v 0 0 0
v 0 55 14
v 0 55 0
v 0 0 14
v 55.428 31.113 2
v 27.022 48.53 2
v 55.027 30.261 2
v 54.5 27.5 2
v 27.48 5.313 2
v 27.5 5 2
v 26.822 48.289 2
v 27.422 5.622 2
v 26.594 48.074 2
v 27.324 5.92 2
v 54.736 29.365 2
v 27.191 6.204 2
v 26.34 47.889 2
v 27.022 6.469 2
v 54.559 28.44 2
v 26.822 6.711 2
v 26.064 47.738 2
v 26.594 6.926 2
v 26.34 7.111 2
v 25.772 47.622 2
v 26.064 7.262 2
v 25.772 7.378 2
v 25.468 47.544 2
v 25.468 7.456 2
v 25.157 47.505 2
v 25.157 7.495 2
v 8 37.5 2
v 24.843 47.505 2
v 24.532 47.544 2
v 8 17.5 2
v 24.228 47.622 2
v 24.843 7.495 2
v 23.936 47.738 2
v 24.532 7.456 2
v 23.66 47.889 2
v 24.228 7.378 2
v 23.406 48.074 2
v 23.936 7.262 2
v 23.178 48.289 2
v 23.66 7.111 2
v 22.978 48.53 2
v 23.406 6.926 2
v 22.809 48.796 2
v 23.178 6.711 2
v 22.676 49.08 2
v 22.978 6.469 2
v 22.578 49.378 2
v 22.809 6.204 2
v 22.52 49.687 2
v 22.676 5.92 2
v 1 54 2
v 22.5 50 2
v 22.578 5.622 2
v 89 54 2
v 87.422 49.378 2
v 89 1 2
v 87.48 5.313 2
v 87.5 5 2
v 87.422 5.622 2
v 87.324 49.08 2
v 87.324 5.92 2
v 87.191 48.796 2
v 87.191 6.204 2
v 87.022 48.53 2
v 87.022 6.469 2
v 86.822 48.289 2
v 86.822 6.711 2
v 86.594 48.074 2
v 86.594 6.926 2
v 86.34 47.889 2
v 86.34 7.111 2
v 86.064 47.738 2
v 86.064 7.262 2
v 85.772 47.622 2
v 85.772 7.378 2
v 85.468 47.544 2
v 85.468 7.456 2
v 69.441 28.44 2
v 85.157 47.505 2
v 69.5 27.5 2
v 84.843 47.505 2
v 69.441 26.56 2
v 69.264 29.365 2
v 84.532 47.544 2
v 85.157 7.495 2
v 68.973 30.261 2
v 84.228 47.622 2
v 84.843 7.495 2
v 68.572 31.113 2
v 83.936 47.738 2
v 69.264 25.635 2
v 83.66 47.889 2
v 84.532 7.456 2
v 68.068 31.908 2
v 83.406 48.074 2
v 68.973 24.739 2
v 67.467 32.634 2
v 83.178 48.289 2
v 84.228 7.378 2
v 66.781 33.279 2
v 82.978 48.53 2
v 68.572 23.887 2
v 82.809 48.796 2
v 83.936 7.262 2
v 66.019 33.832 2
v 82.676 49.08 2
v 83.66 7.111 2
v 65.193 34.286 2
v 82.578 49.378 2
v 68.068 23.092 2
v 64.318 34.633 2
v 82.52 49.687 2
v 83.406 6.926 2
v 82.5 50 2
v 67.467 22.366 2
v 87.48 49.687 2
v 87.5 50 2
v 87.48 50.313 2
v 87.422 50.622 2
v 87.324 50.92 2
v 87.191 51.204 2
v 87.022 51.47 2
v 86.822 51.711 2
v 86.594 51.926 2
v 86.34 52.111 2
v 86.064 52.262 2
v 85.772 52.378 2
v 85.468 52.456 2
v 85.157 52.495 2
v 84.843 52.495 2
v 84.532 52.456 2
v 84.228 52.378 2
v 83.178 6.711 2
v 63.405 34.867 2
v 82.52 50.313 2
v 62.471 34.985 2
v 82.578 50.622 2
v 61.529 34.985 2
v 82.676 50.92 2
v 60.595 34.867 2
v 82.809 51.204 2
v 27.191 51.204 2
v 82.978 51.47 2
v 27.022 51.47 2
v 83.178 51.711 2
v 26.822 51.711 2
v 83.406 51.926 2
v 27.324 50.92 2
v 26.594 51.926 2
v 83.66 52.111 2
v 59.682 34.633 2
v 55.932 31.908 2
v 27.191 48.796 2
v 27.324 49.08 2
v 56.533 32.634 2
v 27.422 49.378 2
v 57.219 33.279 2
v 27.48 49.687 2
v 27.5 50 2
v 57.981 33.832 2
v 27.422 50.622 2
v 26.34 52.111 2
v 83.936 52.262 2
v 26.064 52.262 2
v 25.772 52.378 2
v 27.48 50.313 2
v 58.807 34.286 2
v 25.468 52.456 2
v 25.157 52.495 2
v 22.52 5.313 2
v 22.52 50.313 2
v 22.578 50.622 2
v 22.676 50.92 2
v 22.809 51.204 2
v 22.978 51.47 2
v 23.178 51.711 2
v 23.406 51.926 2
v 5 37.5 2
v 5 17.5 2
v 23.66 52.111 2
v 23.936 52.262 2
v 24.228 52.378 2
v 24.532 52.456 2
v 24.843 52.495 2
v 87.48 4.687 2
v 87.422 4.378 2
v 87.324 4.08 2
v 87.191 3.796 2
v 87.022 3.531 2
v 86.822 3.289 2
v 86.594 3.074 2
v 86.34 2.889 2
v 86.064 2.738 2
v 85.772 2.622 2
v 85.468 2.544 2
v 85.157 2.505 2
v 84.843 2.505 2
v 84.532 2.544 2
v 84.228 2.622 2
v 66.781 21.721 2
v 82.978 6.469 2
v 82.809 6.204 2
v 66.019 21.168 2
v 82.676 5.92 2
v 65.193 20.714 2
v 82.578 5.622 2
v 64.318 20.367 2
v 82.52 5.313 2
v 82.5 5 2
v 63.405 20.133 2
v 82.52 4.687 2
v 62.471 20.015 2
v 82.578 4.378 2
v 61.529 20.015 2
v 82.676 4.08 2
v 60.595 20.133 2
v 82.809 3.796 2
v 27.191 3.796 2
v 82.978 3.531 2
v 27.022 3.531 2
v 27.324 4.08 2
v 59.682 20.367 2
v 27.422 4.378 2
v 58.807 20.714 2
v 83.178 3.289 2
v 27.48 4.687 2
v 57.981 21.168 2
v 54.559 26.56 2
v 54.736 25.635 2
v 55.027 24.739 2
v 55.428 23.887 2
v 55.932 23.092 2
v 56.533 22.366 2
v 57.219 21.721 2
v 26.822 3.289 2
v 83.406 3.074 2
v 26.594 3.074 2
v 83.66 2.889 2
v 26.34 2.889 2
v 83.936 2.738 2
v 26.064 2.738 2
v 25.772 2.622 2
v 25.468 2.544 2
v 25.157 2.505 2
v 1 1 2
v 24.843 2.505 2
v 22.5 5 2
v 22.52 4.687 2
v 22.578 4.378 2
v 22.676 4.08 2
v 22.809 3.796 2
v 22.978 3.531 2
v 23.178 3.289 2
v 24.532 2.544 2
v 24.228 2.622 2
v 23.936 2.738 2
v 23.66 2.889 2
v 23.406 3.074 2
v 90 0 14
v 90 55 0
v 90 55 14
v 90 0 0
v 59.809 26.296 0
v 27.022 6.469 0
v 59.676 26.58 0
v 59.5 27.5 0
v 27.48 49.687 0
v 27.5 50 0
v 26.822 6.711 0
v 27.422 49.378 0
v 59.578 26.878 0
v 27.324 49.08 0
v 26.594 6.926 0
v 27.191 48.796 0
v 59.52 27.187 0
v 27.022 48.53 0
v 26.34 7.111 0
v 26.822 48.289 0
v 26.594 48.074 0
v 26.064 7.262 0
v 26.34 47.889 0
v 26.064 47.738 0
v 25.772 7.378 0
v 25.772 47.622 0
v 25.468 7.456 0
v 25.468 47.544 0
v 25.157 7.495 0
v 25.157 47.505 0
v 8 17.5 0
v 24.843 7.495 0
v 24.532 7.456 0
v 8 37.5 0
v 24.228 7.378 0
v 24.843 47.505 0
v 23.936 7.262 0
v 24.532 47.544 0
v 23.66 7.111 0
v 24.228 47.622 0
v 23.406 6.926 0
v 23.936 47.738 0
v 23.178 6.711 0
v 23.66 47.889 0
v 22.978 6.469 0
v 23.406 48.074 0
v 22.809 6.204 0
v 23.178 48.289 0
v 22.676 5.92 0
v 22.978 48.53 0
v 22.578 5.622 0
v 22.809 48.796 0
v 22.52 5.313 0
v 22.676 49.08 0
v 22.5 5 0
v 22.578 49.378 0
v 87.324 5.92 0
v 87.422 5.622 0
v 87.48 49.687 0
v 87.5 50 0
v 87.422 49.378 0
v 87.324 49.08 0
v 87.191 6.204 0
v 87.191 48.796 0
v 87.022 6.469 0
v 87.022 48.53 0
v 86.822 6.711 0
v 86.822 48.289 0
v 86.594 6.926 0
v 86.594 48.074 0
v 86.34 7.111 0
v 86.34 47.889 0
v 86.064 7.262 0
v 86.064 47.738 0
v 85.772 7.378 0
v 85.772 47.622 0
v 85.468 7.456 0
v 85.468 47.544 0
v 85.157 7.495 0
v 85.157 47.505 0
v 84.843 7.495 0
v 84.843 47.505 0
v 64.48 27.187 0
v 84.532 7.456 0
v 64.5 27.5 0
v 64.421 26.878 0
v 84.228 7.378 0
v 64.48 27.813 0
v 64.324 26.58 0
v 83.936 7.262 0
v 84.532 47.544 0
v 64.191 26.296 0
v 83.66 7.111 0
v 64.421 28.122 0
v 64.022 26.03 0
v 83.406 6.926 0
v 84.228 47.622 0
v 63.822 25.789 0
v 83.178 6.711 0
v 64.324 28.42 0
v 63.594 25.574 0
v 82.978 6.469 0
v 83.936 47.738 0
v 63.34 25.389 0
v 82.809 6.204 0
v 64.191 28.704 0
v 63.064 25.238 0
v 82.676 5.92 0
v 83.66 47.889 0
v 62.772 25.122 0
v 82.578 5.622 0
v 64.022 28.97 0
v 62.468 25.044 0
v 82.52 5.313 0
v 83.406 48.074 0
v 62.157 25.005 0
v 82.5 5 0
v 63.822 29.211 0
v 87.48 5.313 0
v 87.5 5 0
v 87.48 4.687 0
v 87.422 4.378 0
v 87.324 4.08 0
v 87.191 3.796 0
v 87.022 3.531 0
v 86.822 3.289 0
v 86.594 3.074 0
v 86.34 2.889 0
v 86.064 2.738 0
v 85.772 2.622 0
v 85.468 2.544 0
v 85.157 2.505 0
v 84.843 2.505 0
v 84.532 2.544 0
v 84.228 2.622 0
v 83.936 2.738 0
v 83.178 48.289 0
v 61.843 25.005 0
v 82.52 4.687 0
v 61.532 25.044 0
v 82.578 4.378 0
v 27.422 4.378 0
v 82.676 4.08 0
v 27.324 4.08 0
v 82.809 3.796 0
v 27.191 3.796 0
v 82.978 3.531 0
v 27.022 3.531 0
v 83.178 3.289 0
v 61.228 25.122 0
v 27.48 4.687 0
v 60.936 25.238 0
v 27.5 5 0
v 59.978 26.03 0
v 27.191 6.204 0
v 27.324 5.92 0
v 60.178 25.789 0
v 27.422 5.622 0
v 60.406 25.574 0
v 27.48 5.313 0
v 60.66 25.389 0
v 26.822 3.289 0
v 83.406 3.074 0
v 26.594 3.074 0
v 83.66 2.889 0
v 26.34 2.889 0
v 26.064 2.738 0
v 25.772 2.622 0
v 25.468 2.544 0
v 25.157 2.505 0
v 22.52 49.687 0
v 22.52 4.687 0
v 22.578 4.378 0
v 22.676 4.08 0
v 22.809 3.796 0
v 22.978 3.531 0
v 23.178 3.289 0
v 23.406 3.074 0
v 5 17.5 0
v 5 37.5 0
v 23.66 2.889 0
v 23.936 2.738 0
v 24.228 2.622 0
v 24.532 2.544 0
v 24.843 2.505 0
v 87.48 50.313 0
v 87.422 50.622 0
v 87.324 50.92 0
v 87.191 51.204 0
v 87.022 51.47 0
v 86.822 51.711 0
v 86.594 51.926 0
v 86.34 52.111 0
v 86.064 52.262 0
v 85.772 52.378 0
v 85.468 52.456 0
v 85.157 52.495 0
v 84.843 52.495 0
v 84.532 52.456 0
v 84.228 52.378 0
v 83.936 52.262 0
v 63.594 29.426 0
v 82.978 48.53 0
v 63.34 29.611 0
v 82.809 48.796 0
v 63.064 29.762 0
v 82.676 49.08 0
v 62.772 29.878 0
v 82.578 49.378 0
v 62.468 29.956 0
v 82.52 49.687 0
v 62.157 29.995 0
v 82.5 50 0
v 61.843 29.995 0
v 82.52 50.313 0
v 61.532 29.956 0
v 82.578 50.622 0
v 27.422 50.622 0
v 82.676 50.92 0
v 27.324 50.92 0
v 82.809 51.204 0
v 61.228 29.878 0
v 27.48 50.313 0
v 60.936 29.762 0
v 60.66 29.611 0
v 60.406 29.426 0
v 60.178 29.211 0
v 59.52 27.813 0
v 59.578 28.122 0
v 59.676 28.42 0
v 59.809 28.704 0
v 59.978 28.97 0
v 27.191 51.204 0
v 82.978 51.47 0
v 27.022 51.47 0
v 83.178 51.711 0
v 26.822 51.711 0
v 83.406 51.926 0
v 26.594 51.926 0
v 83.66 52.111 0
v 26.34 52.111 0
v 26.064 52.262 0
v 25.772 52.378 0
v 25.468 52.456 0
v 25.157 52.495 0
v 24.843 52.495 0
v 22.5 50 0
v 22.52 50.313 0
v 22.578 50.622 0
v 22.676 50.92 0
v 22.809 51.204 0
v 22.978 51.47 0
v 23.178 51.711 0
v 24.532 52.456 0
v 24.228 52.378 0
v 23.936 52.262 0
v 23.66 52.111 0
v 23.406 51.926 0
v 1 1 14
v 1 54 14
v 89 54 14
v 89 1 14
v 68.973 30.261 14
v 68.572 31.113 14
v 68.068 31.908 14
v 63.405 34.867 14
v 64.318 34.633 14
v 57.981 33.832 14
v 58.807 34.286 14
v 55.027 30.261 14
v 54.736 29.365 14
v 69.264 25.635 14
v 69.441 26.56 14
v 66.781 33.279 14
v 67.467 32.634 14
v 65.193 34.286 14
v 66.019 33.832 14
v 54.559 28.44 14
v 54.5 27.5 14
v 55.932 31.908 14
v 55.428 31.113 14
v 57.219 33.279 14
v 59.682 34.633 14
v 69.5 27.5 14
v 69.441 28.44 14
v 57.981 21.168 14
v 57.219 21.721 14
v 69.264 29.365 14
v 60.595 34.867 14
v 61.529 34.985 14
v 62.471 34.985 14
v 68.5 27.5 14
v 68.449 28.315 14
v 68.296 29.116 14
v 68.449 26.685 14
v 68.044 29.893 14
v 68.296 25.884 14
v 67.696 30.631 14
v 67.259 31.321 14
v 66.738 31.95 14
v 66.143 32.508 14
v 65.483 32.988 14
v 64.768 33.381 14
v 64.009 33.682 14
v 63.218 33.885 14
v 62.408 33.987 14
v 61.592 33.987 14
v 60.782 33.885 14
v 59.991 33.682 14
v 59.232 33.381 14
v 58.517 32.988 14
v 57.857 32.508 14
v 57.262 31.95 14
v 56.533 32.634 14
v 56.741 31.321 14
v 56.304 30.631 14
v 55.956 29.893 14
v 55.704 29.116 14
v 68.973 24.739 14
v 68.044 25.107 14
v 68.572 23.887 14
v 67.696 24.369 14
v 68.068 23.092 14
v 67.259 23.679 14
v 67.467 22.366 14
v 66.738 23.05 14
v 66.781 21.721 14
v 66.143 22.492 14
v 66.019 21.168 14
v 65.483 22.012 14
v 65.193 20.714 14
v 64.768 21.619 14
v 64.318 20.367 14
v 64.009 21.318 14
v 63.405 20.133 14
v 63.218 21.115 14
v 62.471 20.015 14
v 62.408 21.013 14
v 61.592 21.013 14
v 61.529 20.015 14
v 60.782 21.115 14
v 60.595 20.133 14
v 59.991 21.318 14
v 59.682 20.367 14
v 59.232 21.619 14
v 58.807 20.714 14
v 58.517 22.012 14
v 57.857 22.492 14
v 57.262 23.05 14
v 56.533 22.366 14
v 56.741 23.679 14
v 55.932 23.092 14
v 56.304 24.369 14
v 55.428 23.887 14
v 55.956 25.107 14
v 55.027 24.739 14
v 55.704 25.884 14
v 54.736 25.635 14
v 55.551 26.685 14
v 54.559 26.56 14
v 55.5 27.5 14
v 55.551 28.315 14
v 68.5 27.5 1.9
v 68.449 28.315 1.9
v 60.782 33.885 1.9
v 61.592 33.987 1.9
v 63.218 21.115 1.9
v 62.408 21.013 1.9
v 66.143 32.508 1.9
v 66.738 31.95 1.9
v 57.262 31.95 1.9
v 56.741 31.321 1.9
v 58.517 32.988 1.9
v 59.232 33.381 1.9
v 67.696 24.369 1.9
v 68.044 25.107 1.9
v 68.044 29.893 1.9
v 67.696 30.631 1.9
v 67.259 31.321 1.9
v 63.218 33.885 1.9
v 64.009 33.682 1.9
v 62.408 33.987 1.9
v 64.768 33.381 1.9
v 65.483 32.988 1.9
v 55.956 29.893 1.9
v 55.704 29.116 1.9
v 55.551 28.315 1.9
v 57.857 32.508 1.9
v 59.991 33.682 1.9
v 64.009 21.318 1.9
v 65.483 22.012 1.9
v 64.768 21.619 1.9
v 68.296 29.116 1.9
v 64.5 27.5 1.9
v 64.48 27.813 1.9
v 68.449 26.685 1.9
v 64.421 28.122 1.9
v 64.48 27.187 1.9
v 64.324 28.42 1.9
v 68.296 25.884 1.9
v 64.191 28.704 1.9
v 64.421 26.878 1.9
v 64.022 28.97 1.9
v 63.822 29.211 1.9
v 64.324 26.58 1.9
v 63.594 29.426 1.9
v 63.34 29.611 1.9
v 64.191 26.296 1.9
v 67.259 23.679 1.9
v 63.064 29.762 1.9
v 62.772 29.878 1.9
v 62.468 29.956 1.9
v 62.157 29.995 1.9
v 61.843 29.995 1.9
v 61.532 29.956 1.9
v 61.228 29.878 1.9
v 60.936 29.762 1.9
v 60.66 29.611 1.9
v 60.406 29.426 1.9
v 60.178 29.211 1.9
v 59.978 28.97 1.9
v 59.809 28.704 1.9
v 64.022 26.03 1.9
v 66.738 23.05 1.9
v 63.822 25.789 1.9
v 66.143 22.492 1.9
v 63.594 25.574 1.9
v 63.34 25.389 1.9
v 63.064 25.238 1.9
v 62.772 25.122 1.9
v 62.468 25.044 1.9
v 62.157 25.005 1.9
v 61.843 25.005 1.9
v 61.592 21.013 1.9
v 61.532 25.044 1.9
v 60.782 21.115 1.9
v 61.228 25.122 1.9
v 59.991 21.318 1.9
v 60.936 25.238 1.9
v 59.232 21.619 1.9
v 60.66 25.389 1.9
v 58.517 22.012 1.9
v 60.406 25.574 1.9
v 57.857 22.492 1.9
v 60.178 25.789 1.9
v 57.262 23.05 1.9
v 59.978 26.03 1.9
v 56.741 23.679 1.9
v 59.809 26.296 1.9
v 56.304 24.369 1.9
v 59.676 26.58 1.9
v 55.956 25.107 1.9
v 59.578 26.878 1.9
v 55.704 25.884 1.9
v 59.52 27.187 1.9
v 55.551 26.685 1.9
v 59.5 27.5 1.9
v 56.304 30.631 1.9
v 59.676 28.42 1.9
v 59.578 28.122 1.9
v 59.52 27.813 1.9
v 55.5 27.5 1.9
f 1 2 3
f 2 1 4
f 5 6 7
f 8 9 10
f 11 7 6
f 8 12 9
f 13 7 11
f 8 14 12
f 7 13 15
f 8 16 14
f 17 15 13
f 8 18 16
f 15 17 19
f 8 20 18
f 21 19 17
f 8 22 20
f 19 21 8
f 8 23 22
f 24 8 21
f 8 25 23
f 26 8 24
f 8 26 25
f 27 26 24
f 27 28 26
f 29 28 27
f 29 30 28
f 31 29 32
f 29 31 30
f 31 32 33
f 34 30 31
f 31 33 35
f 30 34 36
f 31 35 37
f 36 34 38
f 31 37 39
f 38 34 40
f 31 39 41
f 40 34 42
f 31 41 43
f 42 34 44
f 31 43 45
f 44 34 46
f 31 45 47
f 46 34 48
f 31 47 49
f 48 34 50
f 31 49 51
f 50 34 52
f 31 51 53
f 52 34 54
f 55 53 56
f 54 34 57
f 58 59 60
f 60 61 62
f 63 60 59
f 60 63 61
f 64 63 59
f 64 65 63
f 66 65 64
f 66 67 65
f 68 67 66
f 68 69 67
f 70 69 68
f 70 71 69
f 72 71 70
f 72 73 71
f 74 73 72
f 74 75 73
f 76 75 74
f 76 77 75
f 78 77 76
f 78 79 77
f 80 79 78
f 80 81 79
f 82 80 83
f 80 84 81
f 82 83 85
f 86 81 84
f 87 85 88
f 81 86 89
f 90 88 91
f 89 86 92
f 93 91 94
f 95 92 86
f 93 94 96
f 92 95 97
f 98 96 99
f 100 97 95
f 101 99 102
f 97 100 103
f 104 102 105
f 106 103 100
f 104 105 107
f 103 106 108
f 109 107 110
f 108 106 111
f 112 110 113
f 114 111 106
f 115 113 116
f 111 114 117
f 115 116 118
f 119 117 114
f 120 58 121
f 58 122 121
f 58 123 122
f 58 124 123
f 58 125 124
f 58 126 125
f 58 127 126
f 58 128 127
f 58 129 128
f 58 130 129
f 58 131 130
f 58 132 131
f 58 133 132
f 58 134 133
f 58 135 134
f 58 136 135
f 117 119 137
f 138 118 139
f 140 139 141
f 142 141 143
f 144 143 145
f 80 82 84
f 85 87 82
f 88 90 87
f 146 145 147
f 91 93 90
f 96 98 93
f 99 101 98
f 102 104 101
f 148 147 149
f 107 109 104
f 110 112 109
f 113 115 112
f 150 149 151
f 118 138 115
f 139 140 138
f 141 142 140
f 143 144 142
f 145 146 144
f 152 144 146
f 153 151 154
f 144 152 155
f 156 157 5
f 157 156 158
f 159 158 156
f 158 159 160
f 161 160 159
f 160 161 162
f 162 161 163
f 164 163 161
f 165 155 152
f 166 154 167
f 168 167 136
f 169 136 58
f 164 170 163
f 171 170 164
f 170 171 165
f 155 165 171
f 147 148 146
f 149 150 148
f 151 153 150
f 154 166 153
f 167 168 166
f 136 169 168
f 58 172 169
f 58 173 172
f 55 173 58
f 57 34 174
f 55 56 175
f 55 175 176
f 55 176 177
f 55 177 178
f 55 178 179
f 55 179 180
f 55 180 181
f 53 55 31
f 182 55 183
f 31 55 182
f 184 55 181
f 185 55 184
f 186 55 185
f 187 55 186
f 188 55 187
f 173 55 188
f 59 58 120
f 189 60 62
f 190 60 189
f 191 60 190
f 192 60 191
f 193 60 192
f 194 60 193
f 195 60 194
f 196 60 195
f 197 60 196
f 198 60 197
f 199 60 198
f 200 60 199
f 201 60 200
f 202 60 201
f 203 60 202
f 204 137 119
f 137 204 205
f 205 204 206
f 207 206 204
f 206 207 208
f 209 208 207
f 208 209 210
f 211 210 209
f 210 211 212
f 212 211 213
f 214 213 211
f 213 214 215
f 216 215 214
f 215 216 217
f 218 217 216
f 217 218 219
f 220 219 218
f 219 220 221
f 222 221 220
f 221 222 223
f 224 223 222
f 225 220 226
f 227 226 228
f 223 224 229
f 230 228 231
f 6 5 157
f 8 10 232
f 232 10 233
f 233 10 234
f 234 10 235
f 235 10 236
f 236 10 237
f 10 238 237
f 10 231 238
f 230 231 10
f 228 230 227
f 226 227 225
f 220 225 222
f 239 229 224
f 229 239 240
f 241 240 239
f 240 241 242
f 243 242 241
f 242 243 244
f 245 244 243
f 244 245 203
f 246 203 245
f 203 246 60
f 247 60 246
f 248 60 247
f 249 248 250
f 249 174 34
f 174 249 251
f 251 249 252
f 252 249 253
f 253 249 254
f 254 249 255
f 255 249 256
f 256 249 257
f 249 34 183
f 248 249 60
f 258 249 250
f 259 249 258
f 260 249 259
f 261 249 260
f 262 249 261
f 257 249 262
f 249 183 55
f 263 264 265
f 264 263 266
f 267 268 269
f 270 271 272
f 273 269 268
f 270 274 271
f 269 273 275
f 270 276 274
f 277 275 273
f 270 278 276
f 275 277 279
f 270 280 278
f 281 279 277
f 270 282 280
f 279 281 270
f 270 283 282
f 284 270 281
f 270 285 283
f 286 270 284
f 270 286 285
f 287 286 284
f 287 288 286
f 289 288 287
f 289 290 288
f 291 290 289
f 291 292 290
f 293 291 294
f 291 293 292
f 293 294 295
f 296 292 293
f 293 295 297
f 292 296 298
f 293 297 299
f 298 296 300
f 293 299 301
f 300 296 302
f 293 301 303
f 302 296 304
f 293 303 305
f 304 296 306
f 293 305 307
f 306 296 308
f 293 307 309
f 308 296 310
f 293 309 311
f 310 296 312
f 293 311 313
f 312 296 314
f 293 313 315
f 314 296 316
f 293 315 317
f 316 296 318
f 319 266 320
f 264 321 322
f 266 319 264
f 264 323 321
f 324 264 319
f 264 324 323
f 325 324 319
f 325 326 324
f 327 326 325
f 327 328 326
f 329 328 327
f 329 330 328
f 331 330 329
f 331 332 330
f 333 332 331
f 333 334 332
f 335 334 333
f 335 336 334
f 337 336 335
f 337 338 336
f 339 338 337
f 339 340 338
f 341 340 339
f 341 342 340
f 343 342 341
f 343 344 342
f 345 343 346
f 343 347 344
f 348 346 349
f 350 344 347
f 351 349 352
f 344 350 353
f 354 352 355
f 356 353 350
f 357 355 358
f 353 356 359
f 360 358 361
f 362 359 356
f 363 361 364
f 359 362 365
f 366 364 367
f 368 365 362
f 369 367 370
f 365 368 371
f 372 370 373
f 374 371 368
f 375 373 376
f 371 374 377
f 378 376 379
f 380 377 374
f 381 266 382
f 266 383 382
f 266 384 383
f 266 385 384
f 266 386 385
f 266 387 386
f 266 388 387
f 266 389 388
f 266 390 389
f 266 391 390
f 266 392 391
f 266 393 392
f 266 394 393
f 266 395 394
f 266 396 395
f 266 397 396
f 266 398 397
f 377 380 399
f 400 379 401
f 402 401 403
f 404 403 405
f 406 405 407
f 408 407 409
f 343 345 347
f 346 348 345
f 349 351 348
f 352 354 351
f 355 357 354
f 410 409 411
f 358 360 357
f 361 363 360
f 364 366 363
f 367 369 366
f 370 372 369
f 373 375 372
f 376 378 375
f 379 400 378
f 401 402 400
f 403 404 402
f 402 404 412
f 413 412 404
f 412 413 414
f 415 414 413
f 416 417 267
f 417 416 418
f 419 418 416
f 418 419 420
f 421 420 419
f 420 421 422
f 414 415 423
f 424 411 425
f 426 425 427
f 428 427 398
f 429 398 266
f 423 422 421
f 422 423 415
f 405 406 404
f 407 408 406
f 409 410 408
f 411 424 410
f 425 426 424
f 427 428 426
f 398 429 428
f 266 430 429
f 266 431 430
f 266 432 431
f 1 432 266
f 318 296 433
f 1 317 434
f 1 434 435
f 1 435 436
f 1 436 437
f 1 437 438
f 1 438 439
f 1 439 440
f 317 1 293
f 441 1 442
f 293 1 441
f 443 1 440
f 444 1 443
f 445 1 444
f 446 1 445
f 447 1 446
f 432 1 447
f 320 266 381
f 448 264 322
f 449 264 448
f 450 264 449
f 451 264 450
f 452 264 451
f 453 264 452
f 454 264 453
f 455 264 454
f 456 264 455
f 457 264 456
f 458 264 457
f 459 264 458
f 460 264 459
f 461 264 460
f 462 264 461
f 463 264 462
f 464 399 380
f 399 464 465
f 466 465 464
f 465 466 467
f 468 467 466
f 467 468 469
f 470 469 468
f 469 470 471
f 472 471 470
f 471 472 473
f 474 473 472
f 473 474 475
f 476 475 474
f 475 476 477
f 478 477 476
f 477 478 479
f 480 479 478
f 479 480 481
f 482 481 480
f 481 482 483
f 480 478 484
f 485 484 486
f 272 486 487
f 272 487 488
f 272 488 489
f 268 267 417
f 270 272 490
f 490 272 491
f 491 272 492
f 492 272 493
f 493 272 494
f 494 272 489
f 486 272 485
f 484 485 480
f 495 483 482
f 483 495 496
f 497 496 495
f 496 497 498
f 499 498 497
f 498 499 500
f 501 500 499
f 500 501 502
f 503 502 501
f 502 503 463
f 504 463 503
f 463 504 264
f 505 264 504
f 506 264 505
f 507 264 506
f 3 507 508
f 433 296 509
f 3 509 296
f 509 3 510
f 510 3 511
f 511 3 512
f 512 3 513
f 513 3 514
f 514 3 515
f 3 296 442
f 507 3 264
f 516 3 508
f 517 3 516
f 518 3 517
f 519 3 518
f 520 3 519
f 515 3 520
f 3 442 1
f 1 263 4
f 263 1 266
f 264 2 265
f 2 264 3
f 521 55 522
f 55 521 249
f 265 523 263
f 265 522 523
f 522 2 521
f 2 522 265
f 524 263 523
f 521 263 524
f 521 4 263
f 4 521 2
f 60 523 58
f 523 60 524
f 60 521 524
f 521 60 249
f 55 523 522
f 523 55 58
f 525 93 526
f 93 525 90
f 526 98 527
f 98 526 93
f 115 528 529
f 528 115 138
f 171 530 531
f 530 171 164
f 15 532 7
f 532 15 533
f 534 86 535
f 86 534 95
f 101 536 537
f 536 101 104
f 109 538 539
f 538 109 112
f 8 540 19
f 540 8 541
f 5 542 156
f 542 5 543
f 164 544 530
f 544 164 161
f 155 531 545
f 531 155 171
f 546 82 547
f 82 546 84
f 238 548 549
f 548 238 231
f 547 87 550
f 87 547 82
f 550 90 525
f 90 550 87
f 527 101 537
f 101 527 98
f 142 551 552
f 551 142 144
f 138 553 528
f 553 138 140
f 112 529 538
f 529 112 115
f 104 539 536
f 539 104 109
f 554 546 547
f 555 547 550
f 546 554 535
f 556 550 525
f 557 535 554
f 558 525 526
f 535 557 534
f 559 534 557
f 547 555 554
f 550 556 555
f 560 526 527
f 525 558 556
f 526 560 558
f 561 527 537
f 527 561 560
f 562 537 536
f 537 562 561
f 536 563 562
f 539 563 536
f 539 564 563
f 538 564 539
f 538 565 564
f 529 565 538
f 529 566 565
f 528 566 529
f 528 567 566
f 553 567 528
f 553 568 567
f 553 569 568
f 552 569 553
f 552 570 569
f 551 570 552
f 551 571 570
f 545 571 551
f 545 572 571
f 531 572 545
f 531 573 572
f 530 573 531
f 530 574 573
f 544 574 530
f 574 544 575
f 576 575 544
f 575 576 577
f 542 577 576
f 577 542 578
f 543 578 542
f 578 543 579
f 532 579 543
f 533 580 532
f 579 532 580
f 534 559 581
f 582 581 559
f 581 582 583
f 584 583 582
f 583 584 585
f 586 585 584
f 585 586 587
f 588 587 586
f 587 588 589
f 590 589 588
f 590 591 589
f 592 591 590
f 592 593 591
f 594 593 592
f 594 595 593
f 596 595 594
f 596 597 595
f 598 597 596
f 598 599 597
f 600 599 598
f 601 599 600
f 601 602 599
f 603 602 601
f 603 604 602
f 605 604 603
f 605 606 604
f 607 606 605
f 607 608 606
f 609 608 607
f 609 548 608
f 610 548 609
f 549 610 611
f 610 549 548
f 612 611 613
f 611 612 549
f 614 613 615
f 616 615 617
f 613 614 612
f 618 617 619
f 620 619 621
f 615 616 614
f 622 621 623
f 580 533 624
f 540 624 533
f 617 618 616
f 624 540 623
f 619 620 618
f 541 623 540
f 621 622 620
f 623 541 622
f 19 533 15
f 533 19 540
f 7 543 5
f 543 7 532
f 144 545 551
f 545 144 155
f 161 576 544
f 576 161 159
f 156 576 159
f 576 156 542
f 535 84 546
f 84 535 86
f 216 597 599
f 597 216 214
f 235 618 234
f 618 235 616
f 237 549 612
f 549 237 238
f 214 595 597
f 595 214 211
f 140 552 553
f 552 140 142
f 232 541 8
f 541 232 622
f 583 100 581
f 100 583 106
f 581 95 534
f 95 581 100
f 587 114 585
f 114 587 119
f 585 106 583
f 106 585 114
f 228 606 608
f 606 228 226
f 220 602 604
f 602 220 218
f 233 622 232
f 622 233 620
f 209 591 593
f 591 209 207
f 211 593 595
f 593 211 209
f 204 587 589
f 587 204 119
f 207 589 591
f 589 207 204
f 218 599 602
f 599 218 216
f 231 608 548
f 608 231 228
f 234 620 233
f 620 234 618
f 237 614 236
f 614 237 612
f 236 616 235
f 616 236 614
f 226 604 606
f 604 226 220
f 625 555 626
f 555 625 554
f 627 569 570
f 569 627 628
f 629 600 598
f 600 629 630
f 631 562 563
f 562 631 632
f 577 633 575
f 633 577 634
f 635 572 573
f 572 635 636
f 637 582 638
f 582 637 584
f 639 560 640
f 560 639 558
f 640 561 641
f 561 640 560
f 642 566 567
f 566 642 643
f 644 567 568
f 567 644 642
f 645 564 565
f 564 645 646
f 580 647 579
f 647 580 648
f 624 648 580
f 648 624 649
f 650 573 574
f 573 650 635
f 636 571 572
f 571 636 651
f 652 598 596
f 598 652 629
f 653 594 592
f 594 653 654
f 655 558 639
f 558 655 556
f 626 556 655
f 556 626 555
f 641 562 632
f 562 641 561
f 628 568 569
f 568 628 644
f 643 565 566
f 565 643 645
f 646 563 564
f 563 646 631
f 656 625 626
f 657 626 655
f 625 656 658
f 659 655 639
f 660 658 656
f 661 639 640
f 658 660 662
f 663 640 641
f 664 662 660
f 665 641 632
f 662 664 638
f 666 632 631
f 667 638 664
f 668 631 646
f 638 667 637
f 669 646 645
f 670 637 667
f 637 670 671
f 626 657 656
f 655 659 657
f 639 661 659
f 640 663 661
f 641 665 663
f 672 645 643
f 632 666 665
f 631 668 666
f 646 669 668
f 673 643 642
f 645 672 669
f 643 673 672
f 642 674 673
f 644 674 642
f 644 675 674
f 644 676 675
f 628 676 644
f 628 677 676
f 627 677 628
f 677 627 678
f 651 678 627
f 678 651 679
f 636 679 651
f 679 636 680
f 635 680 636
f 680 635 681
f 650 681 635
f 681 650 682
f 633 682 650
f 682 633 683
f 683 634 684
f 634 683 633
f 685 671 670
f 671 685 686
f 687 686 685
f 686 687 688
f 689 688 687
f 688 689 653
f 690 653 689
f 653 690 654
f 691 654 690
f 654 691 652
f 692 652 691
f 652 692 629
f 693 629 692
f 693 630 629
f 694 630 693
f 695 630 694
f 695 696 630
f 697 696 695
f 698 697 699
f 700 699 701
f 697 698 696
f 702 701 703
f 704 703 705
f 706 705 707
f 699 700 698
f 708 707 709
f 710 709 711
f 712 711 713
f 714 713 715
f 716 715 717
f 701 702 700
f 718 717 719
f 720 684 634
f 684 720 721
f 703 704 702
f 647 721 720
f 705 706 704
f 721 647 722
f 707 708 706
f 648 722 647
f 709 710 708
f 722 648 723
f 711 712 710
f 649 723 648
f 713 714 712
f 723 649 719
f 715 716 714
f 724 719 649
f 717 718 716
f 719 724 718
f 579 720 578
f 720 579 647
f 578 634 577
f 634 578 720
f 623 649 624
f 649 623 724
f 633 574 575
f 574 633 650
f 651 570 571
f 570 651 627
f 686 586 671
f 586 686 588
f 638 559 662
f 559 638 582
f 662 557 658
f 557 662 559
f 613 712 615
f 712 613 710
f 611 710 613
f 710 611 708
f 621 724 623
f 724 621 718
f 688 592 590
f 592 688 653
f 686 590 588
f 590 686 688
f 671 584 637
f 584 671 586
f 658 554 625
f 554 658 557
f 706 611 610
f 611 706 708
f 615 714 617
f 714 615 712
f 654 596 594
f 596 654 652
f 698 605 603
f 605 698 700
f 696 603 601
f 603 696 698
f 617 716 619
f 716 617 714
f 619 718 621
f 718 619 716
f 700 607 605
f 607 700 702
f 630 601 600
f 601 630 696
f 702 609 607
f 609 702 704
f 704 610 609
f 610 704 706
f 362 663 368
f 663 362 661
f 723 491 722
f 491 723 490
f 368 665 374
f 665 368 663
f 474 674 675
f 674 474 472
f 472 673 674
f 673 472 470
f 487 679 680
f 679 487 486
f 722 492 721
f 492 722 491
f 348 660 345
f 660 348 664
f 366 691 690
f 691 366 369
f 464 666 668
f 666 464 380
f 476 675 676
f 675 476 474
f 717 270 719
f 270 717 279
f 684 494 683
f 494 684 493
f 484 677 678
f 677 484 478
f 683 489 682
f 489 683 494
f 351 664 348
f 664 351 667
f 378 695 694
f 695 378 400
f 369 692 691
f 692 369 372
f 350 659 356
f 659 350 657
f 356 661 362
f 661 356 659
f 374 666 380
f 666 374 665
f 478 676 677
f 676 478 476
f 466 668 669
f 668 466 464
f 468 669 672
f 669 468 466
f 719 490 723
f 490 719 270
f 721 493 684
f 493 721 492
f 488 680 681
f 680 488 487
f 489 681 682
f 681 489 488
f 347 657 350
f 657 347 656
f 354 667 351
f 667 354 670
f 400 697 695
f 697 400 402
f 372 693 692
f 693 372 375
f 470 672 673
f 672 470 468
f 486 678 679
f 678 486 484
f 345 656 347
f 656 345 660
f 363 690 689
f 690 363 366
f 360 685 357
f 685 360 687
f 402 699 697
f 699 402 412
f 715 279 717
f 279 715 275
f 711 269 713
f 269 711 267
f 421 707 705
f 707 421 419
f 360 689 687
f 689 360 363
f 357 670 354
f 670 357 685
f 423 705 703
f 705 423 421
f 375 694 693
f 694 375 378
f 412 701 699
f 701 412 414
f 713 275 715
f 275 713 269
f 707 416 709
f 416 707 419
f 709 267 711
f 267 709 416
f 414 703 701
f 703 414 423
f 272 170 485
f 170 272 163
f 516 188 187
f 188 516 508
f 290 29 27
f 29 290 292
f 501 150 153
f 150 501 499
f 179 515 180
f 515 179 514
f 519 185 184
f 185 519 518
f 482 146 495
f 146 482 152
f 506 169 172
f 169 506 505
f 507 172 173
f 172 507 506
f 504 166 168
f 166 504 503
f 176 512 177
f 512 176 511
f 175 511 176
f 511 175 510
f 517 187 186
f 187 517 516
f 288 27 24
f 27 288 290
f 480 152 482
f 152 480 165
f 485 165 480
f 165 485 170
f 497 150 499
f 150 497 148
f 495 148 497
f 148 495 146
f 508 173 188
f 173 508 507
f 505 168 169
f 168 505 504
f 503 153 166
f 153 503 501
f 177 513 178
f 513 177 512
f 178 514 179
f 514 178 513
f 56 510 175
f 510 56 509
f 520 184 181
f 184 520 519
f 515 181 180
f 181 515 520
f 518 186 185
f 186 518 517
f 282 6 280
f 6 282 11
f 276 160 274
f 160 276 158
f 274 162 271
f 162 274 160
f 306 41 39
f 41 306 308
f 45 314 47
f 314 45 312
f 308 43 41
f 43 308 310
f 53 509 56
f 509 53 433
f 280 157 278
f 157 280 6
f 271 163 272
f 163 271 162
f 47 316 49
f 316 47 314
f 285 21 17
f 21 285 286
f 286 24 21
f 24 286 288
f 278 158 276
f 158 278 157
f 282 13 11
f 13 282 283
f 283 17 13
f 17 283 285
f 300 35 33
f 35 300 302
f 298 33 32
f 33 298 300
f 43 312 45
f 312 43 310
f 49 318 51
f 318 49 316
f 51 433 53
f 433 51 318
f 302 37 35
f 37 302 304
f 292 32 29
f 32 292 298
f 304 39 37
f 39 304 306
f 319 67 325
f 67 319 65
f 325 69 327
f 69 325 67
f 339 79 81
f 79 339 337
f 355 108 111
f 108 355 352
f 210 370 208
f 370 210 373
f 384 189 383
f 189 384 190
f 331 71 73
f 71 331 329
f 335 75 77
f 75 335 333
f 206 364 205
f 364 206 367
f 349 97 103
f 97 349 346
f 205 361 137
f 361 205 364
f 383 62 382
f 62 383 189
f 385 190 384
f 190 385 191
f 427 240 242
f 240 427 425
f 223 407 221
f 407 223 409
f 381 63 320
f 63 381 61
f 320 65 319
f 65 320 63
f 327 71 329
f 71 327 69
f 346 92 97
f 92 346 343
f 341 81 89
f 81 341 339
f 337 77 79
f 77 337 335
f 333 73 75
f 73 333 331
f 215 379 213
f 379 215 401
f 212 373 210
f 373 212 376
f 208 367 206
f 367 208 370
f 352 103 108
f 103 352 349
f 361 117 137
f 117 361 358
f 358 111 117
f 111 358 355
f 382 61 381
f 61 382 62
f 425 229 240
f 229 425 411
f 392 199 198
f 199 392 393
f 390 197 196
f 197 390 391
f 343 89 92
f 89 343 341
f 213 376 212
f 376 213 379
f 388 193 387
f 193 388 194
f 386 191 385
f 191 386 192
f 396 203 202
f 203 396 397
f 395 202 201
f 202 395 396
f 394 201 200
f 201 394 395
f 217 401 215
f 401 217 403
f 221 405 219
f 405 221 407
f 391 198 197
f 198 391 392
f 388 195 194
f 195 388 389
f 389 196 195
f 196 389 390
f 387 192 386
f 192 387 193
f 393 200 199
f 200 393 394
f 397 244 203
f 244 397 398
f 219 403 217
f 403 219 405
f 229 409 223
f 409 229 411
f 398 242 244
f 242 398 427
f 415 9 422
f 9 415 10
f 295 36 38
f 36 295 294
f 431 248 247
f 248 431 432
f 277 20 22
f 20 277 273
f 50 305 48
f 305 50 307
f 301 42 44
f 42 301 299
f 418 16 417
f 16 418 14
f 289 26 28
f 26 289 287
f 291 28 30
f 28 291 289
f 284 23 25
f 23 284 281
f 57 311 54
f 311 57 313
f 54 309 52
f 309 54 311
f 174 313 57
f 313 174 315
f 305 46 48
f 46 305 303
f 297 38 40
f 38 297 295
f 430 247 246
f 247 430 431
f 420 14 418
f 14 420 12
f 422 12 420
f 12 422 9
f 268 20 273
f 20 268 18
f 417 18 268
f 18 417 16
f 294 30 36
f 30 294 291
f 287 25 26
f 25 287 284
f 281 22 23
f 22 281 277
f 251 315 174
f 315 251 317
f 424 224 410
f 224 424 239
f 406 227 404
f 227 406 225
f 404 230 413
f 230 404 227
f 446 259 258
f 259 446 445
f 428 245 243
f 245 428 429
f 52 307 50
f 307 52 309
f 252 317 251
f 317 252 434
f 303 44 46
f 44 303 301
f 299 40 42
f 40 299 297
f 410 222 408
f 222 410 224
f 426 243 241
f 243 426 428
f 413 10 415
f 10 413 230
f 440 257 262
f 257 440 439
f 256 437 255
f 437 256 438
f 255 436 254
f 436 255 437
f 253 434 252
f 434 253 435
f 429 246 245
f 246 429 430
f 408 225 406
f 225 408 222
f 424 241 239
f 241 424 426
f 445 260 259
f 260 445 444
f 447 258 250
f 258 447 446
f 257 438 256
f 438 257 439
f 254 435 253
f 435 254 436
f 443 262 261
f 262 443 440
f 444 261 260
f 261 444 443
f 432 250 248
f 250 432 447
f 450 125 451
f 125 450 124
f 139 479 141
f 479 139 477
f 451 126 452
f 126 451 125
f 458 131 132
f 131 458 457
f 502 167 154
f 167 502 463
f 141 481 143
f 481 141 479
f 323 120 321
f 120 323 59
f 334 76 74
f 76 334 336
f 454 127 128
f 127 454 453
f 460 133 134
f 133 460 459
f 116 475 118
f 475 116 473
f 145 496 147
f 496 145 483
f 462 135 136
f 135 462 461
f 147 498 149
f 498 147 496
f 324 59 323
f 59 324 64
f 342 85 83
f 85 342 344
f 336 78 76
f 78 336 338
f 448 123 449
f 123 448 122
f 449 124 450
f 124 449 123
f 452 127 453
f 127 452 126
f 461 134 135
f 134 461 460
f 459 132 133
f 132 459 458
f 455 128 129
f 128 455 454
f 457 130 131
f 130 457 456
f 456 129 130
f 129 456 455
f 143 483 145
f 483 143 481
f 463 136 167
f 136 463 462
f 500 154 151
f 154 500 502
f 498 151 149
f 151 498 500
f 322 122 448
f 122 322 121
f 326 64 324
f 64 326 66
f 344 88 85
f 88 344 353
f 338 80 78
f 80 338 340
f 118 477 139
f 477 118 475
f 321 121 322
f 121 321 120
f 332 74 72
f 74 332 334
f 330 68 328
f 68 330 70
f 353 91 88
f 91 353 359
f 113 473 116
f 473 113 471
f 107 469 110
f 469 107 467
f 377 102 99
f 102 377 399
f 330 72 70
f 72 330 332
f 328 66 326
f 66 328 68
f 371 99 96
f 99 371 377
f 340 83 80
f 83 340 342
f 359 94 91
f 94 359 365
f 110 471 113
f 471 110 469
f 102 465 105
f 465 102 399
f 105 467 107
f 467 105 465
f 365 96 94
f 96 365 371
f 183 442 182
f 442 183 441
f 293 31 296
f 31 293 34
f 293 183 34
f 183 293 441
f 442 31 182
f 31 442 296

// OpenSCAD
// LED and power connector
difference() {
    union() {
        // Bottom 
        cube([90,55,2]);
        
        // Edges
        translate([1, 0, 2]) {
            color([1,0,0])
            cube([88,1,12]);
        }
        translate([1, 54, 2]) {
            color([0,0,1])
            cube([88,1,12]);
        }
        // Ends 
        translate([0, 0, 2]) {
            color([0,1,0])
            cube([1,55,12]);
        }
        translate([89, 0, 2]) {
            color([0,1,0])
            cube([1,55,12]);
        }
        // Optical tunnel exterior
        translate([62, 27.5, 2]) {
            color([0,1,1])
            cylinder(h=12, d=15,
            $fn=50);
        }
    } // End Union
    
    // Optical tunnel interior
    translate([62, 27.5, 1.9]) {
        color([1,0,1])
        cylinder(h=13, d=13,
        $fn=50);  
     }
    
     // Diaphragm opening
    translate([62, 27.5, -1]) {
        color([1,0,1])
        cylinder(h=13, d=5,
        $fn=50);  
    }
    // Guide holes in each corner
    translate([25,50,-1]) cylinder(h=6, d=5,
    $fn=50);
    translate([85,5,-1]) cylinder(h=6, d=5,
    $fn=50);
    translate([25,5,-1]) cylinder(h=6, d=5,
    $fn=50);
    translate([85,50,-1]) cylinder(h=6, d=5,
    $fn=50);
    
    // Slot for Pi Camera ribbon cable
    translate([5, 17.5, -1]) {
        color([1,0,0])
        cube([3,20,5]);  
    }
} // End Difference
